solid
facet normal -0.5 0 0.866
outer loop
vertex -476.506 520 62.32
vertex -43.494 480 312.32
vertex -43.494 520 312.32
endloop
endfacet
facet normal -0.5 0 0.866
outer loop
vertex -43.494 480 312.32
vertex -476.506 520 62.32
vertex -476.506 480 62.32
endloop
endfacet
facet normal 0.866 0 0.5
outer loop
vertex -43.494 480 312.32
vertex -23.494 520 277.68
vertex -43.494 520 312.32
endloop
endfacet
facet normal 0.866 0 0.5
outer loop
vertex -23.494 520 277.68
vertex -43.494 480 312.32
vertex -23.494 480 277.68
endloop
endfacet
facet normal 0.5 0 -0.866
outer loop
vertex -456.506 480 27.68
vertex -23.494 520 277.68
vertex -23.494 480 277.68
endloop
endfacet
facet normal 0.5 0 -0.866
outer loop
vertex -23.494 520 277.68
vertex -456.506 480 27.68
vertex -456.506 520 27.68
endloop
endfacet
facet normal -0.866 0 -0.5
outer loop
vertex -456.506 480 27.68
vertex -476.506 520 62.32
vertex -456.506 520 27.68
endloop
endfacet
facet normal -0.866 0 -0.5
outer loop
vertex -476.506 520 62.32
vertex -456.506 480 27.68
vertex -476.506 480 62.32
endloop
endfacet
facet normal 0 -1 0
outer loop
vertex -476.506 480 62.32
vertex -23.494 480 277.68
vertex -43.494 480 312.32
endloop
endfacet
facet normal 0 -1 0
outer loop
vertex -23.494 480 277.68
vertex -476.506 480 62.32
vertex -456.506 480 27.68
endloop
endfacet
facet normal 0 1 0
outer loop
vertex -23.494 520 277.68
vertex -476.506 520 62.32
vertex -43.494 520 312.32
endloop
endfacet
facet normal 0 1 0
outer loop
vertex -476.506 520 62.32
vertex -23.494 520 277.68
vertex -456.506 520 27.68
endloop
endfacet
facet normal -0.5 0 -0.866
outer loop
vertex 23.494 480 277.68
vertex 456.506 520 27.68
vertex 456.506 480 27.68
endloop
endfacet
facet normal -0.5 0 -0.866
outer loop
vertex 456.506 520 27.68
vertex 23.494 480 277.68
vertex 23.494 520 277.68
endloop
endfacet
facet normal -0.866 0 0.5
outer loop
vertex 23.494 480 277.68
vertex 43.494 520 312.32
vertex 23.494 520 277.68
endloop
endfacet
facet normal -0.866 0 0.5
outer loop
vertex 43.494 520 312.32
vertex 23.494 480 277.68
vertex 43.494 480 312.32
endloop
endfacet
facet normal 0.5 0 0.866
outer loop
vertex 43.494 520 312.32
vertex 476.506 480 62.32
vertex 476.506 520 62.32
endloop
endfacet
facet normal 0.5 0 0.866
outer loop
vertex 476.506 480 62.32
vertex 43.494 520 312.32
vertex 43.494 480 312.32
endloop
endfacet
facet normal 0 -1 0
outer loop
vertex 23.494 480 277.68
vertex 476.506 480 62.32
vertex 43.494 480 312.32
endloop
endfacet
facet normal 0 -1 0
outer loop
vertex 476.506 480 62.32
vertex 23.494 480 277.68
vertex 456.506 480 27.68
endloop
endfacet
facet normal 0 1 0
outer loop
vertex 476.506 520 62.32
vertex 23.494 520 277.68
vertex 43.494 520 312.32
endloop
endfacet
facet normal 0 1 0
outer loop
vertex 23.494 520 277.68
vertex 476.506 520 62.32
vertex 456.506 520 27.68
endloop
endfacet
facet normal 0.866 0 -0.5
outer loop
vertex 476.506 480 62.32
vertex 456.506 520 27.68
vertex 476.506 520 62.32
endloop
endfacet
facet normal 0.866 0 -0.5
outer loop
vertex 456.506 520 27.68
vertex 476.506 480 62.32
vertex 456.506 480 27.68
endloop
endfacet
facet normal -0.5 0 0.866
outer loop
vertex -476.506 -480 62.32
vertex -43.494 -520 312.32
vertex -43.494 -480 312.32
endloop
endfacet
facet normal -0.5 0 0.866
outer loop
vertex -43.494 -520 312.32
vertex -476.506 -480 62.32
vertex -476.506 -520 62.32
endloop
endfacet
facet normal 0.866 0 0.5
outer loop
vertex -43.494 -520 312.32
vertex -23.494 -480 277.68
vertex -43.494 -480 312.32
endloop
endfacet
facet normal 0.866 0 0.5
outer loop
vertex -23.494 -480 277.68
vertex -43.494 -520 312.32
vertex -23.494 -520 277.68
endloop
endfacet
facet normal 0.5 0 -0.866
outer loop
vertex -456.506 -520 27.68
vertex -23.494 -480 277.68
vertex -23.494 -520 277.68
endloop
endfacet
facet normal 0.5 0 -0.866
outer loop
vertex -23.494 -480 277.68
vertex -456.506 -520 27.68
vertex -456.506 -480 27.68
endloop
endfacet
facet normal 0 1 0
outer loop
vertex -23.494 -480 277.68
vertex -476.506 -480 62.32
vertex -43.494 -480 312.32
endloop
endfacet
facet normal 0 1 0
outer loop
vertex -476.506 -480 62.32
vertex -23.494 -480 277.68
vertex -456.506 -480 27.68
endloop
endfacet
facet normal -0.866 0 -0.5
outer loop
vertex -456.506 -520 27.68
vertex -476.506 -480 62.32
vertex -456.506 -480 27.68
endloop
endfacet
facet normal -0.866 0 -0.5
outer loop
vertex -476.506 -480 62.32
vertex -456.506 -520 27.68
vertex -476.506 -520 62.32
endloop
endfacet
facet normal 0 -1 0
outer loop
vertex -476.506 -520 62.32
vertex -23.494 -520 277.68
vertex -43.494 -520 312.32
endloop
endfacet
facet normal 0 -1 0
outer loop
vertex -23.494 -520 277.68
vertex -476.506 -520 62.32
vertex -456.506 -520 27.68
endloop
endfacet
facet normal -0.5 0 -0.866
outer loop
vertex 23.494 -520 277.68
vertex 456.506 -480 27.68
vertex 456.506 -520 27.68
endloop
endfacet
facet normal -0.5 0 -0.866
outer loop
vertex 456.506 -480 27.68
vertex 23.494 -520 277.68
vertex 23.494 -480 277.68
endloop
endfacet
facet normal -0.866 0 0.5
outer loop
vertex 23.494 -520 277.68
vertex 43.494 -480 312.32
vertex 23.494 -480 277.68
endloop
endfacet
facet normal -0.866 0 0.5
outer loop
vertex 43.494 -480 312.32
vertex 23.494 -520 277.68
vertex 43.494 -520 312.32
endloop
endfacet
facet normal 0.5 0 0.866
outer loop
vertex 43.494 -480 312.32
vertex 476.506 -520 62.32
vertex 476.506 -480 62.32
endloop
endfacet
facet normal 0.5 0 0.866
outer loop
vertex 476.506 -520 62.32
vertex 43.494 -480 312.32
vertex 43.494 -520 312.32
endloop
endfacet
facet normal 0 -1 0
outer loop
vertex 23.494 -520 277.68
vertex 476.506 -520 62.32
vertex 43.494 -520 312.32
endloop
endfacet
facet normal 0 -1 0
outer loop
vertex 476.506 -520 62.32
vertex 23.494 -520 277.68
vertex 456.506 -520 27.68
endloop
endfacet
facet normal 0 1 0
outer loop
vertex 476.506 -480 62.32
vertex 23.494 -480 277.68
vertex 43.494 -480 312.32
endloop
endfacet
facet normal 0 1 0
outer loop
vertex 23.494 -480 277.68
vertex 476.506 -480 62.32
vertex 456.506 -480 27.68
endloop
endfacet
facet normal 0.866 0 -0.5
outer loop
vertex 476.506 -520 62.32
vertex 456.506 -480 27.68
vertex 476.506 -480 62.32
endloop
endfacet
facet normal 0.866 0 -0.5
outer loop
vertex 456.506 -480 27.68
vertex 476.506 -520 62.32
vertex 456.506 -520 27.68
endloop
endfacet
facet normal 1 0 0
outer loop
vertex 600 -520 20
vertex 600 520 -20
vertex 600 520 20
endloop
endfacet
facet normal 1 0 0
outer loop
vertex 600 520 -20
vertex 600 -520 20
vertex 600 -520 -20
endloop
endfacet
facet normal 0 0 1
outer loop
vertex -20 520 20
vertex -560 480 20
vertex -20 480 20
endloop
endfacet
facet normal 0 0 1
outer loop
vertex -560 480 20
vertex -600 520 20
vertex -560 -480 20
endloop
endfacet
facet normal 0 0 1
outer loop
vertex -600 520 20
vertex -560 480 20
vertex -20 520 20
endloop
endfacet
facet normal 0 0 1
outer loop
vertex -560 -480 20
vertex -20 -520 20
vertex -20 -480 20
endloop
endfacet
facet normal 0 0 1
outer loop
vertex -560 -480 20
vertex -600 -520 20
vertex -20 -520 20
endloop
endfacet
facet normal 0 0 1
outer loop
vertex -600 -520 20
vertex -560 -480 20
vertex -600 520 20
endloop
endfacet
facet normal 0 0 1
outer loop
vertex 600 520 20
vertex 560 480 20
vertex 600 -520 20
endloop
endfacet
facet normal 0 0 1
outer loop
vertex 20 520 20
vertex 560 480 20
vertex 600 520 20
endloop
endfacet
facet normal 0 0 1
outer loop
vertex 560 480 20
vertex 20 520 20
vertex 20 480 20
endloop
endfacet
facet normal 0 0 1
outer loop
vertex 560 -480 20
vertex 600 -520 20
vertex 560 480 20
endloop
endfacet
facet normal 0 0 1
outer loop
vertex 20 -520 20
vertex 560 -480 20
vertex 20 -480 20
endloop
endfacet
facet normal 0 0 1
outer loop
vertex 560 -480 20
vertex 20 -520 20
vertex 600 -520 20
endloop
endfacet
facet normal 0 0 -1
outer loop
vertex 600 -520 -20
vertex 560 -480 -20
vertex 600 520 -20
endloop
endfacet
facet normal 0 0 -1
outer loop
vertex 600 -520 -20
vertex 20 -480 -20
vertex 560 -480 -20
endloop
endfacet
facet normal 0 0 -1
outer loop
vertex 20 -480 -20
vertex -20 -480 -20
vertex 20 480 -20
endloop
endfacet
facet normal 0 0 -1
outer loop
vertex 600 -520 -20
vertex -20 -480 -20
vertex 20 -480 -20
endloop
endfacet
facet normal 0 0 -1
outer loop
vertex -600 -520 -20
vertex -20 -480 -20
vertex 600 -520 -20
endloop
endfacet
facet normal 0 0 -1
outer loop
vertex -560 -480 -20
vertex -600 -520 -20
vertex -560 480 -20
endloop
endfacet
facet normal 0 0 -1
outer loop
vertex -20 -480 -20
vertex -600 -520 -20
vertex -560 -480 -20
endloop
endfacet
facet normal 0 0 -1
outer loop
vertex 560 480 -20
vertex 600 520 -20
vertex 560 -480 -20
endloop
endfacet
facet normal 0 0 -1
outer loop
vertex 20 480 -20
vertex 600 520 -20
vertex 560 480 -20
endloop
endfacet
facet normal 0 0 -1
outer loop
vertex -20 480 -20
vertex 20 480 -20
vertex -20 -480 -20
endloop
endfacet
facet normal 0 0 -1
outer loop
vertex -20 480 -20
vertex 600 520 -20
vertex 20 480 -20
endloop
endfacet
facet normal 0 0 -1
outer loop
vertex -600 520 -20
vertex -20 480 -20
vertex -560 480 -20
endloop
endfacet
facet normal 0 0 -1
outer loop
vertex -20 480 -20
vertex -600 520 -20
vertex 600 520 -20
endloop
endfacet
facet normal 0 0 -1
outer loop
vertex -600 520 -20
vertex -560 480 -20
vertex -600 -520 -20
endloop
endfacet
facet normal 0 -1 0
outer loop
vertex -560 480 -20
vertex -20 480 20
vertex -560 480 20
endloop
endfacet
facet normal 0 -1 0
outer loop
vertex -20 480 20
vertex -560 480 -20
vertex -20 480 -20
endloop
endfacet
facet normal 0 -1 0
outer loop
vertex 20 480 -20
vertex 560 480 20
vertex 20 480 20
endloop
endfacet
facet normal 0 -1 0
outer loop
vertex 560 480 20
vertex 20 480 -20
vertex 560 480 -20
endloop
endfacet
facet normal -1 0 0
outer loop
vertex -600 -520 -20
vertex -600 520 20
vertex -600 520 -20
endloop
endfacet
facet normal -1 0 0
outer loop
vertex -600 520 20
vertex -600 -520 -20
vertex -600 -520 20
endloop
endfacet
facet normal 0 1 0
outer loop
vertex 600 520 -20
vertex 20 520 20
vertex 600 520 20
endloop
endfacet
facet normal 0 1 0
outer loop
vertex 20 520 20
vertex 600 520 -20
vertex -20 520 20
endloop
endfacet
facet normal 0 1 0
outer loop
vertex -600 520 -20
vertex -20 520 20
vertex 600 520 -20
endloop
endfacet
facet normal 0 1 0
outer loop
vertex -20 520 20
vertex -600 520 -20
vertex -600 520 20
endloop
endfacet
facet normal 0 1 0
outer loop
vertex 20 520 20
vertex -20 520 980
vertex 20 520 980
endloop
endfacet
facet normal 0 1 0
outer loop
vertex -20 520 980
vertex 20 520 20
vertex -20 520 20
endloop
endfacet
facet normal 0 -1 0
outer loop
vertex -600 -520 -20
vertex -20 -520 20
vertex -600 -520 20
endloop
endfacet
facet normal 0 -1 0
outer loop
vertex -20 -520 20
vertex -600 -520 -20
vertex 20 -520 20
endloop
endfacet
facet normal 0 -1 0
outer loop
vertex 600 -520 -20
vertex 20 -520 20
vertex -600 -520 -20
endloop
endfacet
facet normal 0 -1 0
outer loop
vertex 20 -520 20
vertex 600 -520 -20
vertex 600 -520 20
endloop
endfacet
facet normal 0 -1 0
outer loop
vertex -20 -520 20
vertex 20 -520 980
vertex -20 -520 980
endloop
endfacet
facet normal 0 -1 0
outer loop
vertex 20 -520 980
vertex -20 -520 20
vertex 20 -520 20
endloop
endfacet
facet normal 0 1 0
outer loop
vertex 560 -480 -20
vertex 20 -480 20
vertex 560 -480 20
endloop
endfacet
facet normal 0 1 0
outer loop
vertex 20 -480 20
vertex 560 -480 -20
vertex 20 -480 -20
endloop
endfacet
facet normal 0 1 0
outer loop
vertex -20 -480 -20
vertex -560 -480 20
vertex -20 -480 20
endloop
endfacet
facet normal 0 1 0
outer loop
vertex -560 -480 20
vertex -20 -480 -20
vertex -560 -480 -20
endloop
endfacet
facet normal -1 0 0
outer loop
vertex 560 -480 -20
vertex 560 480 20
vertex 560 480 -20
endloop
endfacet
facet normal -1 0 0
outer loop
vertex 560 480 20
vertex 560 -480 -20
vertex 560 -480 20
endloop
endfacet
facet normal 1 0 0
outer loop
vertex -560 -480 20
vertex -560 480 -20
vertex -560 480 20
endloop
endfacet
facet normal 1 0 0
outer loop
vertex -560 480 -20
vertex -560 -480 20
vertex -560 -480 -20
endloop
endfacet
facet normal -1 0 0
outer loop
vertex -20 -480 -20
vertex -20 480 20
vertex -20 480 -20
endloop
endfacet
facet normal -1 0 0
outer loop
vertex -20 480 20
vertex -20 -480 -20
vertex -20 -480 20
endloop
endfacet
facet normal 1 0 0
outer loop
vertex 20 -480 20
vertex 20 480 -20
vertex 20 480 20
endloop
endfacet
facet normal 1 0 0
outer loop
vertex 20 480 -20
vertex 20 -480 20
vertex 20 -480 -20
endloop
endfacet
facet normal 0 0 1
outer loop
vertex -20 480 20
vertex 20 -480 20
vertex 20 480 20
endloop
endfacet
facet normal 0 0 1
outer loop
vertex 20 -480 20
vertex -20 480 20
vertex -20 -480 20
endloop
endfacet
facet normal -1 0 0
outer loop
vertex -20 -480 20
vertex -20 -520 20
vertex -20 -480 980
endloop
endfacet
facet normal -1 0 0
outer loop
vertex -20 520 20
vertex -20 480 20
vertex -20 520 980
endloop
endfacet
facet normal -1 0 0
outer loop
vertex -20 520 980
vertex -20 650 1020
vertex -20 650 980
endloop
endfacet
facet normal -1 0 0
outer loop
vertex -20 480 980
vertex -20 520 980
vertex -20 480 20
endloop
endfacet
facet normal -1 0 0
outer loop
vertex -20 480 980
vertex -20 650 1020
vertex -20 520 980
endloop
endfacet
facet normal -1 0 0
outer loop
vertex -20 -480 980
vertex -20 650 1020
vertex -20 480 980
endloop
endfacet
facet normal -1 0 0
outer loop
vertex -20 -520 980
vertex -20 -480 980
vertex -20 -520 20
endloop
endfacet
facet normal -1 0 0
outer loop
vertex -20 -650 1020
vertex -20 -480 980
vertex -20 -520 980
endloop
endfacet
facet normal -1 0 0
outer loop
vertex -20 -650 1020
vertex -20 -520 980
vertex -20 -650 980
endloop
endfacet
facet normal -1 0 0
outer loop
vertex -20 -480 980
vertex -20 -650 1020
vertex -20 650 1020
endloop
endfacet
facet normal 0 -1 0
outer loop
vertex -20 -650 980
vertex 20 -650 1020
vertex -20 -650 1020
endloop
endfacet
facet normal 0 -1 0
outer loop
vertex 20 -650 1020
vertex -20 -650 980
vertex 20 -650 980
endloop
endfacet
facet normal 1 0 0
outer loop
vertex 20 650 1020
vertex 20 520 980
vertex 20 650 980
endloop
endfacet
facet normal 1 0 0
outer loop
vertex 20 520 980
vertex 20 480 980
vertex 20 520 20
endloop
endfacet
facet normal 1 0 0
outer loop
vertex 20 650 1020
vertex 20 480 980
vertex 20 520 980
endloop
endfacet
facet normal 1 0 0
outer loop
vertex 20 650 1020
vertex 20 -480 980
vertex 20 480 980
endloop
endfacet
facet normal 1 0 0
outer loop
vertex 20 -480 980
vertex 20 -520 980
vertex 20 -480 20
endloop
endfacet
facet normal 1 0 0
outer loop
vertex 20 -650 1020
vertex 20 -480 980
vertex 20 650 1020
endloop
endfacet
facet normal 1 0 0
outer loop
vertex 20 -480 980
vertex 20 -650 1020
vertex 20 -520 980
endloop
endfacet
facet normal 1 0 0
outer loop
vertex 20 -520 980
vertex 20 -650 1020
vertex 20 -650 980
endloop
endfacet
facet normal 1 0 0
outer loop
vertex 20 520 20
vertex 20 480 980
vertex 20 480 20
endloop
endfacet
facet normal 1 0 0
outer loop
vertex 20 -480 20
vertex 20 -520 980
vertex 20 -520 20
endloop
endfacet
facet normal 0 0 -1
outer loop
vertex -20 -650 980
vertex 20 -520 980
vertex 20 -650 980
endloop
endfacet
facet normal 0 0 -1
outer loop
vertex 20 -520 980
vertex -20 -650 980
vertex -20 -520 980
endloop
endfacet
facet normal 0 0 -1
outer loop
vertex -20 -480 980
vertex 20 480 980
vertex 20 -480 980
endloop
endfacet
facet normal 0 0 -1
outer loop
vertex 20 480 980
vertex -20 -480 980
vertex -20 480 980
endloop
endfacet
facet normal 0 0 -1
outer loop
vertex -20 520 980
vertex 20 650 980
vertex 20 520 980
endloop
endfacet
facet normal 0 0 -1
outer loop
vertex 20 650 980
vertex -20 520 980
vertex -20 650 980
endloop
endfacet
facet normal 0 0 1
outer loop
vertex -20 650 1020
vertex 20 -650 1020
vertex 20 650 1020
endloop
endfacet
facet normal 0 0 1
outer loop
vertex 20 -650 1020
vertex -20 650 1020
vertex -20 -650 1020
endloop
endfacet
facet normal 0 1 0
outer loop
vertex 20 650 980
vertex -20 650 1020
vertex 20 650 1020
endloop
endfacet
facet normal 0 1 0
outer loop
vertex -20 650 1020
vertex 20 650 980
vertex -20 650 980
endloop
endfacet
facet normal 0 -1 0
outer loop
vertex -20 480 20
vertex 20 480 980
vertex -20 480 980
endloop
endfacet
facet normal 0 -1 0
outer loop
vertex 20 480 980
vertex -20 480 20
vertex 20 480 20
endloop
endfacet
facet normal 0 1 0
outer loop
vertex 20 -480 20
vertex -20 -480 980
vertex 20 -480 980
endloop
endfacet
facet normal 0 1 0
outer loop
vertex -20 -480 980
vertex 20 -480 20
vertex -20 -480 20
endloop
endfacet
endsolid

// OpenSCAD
module Al4040 (long) {
    cube(size=[40, 40, long], center=true);
}

module kuang(x,y,z) {
    translate ([x,y,z]) {
        // 框架
        union(){
            translate([0,500,0]){
                rotate ([0,90,0]){
                    Al4040(1200);
                }
            }
            translate([0,-500,0]){
                rotate ([0,90,0]){
                    Al4040(1200);
                }
            }
            translate([580,0,0]){
                rotate ([90,0,0]){
                    Al4040(960);
                }
            }
            translate([-580,0,0]){
                rotate ([90,0,0]){
                    Al4040(960);
                }
            }
            translate([0,0,0]){
                rotate ([90,0,0]){
                    Al4040(960);
                }
            }
        }
        // 顶梁
        translate([0,0,1000]){
            rotate ([90,0,0]){
                Al4040(1300);
            }
        }
        // 立柱
        union(){
            translate([0,500,500]){
                rotate ([0,0,0]){
                    Al4040(960);
                }
            }
            translate([0,-500,500]){
                rotate ([0,0,0]){
                    Al4040(960);
                }
            }
        }
        
        // 斜支撑
        union(){
            translate([-250,500,170]){
                rotate ([0,60,0]){
                    Al4040(500);
                }
            }
            translate([250,500,170]){
                rotate ([0,-60,0]){
                    Al4040(500);
                }
            }
            translate([-250,-500,170]){
                rotate ([0,60,0]){
                    Al4040(500);
                }
            }
            translate([250,-500,170]){
                rotate ([0,-60,0]){
                    Al4040(500);
                }
            }
        }
    }
}

module main() {
    kuang(0,0,0);
}

main();
